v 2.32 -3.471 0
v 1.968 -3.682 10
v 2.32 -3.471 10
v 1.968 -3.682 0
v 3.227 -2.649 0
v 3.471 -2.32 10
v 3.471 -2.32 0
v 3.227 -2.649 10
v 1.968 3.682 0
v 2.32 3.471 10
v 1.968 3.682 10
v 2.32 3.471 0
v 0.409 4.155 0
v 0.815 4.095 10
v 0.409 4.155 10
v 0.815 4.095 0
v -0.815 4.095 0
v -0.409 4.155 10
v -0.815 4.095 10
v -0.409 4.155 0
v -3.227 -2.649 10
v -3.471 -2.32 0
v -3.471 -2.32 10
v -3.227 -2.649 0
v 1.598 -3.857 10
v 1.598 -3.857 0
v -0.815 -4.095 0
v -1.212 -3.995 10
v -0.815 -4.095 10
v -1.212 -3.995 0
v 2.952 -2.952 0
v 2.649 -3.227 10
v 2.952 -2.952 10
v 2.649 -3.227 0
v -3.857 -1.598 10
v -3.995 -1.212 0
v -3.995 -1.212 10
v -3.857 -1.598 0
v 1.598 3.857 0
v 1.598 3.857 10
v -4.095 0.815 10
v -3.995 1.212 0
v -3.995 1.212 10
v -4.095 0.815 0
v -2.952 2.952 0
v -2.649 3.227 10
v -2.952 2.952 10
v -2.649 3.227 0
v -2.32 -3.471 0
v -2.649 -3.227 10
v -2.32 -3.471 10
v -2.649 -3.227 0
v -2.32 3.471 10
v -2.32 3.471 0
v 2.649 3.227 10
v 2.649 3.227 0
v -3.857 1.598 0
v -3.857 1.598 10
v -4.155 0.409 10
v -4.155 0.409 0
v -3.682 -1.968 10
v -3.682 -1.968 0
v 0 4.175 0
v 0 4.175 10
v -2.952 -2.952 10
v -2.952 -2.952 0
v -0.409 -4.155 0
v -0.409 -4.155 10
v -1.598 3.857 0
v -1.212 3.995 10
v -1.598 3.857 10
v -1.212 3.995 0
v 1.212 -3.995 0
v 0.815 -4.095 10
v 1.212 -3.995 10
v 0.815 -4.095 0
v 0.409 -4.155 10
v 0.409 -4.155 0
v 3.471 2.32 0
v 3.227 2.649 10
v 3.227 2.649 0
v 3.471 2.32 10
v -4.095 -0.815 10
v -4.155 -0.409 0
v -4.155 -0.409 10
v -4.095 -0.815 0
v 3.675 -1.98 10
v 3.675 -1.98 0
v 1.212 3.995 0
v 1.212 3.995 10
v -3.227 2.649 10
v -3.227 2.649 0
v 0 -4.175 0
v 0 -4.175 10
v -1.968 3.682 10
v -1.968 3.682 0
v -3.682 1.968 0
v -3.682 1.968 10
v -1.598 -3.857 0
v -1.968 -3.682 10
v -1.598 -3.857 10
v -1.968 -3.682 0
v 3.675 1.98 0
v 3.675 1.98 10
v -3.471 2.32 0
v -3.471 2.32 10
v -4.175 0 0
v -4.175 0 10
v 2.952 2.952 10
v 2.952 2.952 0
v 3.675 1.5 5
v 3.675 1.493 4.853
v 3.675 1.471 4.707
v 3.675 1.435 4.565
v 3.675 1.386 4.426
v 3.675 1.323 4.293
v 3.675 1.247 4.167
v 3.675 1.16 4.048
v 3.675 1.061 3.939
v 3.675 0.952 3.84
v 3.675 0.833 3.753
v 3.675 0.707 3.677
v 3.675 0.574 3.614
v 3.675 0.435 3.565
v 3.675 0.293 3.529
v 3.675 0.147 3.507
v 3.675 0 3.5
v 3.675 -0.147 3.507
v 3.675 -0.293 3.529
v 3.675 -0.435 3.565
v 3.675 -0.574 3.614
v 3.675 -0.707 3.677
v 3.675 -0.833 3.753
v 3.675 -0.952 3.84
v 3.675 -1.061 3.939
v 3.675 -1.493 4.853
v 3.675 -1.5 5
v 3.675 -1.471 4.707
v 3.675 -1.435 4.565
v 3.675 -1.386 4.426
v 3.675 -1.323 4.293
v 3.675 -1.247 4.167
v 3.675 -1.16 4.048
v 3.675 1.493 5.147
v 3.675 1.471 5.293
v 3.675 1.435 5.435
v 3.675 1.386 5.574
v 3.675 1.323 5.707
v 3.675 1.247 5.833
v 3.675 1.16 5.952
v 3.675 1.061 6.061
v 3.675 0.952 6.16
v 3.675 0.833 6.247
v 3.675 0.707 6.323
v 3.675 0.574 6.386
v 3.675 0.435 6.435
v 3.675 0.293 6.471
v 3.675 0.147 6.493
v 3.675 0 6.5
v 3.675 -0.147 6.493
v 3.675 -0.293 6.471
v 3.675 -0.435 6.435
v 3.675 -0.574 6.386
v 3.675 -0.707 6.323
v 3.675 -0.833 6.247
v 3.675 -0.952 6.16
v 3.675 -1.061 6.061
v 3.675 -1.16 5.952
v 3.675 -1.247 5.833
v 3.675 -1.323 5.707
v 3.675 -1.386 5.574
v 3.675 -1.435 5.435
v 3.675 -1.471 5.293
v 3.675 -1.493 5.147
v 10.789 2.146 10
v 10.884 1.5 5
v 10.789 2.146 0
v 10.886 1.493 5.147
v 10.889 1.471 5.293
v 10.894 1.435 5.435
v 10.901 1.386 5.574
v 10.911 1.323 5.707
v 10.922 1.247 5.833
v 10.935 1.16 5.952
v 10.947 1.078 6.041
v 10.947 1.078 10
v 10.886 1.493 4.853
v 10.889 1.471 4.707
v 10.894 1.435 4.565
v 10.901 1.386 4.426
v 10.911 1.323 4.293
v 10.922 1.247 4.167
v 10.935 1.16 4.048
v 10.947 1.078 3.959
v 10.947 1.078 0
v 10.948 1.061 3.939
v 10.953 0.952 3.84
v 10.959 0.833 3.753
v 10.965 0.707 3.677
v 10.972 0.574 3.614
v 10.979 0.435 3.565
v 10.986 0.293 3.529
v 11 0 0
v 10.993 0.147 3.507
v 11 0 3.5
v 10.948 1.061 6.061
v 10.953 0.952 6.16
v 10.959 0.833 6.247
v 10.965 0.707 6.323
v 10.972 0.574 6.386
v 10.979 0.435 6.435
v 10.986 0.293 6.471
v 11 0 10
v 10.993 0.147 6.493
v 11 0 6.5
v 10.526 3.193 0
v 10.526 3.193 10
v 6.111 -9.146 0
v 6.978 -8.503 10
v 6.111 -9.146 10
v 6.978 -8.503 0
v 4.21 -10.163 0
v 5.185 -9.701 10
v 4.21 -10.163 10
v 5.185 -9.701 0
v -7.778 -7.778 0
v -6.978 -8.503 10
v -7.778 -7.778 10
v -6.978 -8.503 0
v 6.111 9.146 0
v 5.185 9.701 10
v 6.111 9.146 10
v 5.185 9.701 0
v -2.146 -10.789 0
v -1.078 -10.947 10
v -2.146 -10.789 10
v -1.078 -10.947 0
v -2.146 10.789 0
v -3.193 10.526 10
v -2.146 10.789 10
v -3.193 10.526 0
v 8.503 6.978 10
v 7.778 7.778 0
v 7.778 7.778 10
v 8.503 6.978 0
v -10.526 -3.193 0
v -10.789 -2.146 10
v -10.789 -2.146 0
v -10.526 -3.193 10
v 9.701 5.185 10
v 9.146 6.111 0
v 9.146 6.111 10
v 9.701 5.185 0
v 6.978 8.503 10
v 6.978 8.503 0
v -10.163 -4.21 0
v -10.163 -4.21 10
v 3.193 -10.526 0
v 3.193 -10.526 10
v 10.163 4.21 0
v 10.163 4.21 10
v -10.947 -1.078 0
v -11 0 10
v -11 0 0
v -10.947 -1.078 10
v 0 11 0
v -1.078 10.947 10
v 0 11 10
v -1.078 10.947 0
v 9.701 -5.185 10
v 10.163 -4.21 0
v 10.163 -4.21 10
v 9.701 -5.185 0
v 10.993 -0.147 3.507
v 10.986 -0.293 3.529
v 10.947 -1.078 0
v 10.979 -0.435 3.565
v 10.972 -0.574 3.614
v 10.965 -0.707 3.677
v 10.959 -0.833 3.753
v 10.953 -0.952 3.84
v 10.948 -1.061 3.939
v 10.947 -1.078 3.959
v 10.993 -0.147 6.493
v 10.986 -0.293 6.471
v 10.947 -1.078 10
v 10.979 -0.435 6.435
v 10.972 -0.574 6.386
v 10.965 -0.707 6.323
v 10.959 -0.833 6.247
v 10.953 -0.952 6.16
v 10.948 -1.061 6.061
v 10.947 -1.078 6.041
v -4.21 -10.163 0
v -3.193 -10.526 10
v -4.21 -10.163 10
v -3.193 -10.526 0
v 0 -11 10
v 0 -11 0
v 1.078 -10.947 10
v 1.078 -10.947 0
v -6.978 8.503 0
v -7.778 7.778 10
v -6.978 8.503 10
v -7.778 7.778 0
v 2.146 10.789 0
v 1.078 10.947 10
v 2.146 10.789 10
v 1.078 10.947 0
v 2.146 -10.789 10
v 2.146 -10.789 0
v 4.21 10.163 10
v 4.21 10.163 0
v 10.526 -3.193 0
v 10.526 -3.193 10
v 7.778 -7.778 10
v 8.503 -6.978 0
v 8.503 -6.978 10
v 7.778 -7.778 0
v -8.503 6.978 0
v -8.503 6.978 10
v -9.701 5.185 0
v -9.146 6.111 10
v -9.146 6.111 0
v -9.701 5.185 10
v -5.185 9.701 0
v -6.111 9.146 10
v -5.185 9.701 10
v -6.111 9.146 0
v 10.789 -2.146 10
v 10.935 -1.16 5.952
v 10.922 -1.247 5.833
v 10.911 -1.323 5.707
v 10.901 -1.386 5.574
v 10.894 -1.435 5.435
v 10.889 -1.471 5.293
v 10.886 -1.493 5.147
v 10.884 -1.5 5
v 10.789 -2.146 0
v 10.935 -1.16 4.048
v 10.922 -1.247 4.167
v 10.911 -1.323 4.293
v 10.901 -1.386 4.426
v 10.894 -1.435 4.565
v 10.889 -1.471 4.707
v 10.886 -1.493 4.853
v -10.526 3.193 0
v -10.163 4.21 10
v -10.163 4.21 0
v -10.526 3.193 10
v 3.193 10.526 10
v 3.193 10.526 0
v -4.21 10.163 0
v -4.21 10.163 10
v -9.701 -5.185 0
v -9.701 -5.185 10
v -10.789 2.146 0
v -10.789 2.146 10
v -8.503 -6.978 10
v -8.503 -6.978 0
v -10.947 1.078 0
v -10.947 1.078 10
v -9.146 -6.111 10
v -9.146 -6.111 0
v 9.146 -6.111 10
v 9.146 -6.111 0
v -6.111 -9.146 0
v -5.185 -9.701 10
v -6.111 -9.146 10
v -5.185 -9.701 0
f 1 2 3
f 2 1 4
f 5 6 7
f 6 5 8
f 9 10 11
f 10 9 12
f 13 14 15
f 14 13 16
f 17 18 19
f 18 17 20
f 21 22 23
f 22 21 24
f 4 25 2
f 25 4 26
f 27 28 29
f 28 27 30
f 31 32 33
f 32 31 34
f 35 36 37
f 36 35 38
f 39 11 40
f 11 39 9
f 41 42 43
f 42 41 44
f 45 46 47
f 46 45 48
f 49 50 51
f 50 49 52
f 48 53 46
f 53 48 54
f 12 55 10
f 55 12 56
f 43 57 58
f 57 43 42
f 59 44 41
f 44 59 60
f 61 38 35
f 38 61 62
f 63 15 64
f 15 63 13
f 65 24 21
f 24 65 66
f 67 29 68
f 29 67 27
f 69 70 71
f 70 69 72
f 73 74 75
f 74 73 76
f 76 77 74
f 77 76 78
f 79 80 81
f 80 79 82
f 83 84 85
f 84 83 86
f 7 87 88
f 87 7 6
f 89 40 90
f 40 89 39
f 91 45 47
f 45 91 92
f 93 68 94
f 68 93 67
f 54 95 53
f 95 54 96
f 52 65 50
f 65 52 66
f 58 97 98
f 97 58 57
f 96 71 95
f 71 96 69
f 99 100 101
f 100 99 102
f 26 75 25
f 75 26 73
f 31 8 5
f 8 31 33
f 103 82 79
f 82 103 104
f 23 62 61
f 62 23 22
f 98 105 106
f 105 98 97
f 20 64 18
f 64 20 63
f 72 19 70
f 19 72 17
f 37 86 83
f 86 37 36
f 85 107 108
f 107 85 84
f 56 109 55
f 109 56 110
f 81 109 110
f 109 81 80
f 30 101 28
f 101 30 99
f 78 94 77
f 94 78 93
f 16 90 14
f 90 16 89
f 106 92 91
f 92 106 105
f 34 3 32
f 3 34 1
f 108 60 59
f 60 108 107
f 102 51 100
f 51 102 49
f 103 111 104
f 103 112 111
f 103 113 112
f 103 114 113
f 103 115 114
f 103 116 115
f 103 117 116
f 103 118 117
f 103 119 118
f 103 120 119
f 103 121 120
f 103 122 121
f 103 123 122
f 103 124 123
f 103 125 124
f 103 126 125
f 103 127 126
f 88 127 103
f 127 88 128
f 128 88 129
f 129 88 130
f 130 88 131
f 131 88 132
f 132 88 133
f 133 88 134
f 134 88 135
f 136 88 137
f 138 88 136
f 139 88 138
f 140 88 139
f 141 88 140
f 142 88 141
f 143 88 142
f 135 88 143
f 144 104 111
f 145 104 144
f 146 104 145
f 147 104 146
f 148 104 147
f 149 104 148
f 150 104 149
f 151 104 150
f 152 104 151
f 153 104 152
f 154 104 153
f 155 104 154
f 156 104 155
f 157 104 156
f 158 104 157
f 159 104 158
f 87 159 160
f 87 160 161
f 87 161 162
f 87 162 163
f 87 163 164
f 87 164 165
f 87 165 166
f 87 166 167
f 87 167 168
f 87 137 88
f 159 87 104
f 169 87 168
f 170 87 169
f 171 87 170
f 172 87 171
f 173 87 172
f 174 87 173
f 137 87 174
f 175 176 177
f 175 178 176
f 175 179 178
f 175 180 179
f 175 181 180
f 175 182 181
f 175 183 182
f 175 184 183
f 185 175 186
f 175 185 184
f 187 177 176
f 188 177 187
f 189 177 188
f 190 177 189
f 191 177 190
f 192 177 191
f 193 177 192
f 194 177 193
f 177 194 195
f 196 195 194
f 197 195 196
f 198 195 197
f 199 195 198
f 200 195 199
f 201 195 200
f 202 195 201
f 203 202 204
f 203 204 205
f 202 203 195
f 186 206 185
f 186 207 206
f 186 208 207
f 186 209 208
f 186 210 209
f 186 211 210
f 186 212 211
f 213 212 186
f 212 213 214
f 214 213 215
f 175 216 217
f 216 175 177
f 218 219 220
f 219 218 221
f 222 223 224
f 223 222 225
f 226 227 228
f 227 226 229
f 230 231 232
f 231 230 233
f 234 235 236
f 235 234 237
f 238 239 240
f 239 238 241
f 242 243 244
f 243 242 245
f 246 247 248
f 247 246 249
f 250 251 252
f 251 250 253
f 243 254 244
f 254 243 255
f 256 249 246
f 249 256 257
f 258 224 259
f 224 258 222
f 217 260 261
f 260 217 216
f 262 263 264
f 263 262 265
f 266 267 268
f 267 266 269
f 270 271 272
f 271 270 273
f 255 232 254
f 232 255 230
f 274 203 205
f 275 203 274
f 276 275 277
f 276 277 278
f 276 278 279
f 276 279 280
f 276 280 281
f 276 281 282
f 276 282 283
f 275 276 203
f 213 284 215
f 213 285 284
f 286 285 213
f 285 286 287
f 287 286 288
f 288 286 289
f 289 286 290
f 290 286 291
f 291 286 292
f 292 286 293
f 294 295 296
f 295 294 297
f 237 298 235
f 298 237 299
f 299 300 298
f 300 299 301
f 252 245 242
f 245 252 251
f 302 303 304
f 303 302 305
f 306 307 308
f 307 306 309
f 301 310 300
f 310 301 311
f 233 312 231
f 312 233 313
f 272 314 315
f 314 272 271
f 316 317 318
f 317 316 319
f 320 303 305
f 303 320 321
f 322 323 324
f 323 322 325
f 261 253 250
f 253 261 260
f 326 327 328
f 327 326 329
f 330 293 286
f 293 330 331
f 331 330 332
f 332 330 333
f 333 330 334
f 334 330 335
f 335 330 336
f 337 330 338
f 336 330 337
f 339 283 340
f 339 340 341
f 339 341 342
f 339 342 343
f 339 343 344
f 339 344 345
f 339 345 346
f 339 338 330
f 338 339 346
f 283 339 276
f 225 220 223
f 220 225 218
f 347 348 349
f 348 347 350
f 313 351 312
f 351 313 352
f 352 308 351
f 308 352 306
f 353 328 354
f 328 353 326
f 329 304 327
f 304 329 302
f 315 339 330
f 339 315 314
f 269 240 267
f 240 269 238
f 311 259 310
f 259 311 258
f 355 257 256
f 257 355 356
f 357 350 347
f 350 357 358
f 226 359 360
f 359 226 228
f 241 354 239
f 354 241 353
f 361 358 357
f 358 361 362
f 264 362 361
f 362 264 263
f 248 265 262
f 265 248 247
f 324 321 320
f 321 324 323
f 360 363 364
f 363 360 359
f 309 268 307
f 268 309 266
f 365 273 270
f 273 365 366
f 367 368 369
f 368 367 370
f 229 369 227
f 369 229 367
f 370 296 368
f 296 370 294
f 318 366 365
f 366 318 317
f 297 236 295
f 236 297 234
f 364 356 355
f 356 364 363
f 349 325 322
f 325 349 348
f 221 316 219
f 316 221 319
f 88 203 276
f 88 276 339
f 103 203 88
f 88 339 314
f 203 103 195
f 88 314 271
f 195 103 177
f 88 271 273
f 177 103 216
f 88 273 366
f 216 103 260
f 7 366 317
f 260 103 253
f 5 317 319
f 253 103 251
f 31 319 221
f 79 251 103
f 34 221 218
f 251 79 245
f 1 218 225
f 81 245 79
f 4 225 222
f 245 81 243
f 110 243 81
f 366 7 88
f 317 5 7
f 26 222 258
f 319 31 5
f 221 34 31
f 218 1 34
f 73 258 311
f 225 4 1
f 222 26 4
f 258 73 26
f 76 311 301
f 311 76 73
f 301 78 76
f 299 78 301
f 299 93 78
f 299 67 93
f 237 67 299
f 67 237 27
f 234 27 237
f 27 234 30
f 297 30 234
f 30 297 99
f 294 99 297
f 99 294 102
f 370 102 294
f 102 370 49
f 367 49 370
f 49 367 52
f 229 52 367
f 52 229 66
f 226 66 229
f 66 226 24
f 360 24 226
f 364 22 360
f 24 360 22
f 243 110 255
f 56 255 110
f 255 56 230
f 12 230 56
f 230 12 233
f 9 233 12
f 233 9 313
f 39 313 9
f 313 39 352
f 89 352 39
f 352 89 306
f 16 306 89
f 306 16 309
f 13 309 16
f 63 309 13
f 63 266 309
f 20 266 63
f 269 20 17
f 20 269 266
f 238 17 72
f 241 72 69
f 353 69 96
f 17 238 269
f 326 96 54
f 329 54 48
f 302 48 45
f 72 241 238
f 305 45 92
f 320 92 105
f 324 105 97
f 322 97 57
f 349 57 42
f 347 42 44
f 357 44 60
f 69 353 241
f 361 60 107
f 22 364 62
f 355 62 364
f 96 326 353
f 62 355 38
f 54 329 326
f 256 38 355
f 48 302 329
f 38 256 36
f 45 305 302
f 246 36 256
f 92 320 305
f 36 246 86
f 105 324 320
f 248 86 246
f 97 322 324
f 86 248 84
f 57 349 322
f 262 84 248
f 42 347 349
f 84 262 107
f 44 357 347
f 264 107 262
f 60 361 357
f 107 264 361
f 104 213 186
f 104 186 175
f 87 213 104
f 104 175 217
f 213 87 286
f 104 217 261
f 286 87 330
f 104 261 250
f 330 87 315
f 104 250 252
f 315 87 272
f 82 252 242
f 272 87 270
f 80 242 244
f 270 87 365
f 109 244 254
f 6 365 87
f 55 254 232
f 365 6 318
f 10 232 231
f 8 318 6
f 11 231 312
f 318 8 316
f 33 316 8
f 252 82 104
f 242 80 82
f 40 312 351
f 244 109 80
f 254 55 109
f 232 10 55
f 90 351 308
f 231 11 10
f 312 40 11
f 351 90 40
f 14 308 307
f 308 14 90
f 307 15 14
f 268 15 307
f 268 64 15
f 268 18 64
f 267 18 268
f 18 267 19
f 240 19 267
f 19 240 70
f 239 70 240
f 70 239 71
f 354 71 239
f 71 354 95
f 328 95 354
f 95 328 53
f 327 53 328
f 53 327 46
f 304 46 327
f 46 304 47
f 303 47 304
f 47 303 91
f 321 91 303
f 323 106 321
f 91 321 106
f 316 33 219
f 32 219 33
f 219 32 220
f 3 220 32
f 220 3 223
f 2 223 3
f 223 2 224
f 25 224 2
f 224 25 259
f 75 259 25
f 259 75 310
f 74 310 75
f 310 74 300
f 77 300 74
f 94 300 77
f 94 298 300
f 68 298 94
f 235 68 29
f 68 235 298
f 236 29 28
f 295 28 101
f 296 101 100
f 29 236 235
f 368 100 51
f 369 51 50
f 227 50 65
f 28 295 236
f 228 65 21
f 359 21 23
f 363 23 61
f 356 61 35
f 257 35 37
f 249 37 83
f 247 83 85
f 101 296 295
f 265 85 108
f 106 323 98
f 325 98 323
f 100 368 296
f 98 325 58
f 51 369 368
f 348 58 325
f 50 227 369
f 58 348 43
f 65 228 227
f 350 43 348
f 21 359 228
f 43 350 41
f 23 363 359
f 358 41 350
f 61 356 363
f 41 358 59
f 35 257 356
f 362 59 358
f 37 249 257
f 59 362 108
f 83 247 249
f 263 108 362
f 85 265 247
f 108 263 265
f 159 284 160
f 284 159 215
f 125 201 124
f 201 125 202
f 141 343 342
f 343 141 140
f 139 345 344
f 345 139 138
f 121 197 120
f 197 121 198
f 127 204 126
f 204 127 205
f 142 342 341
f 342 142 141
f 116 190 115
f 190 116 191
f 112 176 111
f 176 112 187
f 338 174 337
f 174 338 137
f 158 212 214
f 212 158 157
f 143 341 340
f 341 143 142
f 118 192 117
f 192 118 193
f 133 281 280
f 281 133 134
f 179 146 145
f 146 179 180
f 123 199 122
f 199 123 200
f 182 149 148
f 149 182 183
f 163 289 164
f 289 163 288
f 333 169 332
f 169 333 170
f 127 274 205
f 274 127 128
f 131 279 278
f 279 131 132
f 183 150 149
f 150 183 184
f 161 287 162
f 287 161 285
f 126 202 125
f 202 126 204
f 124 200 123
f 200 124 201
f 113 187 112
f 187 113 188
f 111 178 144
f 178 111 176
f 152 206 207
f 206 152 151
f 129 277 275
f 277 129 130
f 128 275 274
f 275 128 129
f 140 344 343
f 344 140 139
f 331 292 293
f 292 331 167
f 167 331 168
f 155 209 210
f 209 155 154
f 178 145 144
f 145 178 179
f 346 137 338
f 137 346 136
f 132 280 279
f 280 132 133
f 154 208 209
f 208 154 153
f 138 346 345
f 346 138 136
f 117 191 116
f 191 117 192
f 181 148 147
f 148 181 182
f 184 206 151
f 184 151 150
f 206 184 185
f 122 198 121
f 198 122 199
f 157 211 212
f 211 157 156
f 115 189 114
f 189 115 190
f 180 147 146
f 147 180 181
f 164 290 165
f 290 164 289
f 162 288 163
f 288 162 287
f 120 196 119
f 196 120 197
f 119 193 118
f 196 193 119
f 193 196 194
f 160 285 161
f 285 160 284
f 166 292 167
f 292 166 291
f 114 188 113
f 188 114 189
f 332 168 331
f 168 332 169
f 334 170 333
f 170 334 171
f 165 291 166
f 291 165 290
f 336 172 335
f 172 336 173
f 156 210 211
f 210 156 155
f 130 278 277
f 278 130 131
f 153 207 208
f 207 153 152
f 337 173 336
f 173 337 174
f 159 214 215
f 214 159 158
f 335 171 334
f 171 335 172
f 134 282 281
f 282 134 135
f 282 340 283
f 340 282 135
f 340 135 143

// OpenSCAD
// file: parameters.scad
// =============================================================================
// Gen-BE — nightly 2026-10-03 (physics_scorer, honest magpylib watts)
// Clocking 0 deg (magnets N facing S) + D-flat keyed bore + index notch + flip-symmetric braces/bolts.
// Windable 2-piece bobbin; turns = physics_scorer turns_fit; copper only between flanges.
// former_web = 3.60 mm (taller copper vs Gen-BA 2.46) — gap grows with web (honest Bz tradeoff).
// Steel back-iron: two buyable mild-steel discs behind each rotor (score with --back-iron).
// =============================================================================
topology            = "dual_rotor";

// --- Wire / winding (physics_scorer winding-fit) -------------------------------
wire_awg            = 26;
wire_od             = 0.45;     // insulated OD mm (bare 0.405)
fill_realistic      = 0.60;     // insulated-wire area / window, hand-wound layered
turns               = 107;       // = physics_scorer turns_fit (do NOT raise)
coil_former_type    = "bobbin";
coil_core_inset     = 7.90;     // radial copper build: hub = copper boundary inset by this
wind_build_axial    = 0.0;      // nothing proud of the flanges
wind_build_radial   = 0.0;

// --- Bobbin (base + lid) ---------------------------------------------------------
coil_id_r           = 26.00;    // copper boundary sector (over the magnet track)
coil_od_r           = 50.00;
span_deg            = 31.84;    // = pitch - 2*asin((wall+0.85)/coil_id_r) -> >=1.2 mm stator web
former_web          = 3.60;     // copper height between flanges
flange_t            = 0.60;
wall                = 1.00;     // flange lip beyond copper
former_bare_h       = former_web + 2 * flange_t;
coil_envelope_h     = former_bare_h + 2 * wind_build_axial;
tab_w               = 7.0;
tab_len             = 7.0;
tab_h               = former_bare_h / 2;
pin_d               = 1.9;      // 1.75 mm filament locating pin
coil_mount_r        = coil_od_r + 0.2 + 4.0;
lead_y              = 1.6;
lead_slot_w         = 0.9;
lead_groove_d       = 0.6;

// --- Gap -------------------------------------------------------------------------
run_clear           = 0.50;     // rotor face -> flange
gap_spacer_h        = run_clear + wind_build_axial;
m2m                 = coil_envelope_h + 2 * run_clear;

// --- Stator ----------------------------------------------------------------------
coil_stations       = 9;
bay_clear           = 0.25;
stator_thick        = former_bare_h;                        // bobbins flush both faces
stator_od           = 158.0;
shaft_clear_stator  = 14.0;     // stator is static; shaft only

// --- Rotor(s) --------------------------------------------------------------------
magnet_Br           = 1.43;     // N52
halbach_magnetisation = "diametric"; // O5x5 assist magnets MUST be DIAMETRICALLY magnetised (tangential)
rotor_b_same_axis   = true;     // same-index magnets share one axis: N faces S across the gap
large_pocket_d      = 20.3;
small_pocket_d      = 5.3;
pocket_h            = 5.2;
large_n             = 8;
R_large             = 38.0;
R_small_inner       = 24.0;
R_small_mid         = 38.0;
R_small_outer       = 55.0;
carrier_od          = 156.0;
carrier_thick       = 7.5;
hub_h               = 10.0;
hub_od              = 30.0;
rotor_b_offset_deg  = 0.0;      // CLOCKING: magnets directly opposite
shaft_key           = "dflat";
dflat_depth         = 0.5;      // 8 mm shaft with 0.5 mm flat (7.5 across flat)
index_notch_d       = 3.0;

// --- Modular MAX interface (Gen-E family) -----------------------------------------
shaft_bore          = 8.35;
dflat_x             = 4.0 - dflat_depth + (shaft_bore - 8.0) / 2;
bearing_d           = 21.85;
bearing_h           = 7.2;
m3_clear            = 3.5;
bolt_r_inner        = 30.0;
bolt_n_inner        = 4;
bolt_inner_angles   = [22.5, -22.5, 157.5, 202.5];  // between poles, flip-symmetric
flange_bolt_r       = 72.0;
flange_bolt_n       = 6;
brace_r             = 68.0;
brace_d             = 4.3;
brace_n             = 4;
brace_angles        = [45, 135, 225, 315];          // flip-symmetric

spacer_pad_od       = 14.0;
spacer_pad_id       = m3_clear;
endbell_od          = 158.0;
endbell_thick       = 8.0;
endbell_shaft_clear = 10.0;
plate_max_mm        = 410;

$fn = 64;
// main file
// Gen-BE — shaft collar with D-flat bore (set screw bears on the flat); print x4
include <parameters.scad>;
$fn = 64;
// D-flat keyed bore: flat faces +X (angle 0 = magnet pocket 0 = index notch)
module dflat_bore(h) {
    intersection() {
        cylinder(d=shaft_bore, h=h);
        translate([-shaft_bore, -shaft_bore, 0]) cube([shaft_bore + dflat_x, 2*shaft_bore, h]);
    }
}

od = 22; h = 10; set_d = 3.0;
difference() {
    cylinder(d=od, h=h);
    translate([0, 0, -0.1]) dflat_bore(h + 0.2);
    translate([0, 0, h/2]) rotate([0, 90, 0]) cylinder(d=set_d, h=od);
}
